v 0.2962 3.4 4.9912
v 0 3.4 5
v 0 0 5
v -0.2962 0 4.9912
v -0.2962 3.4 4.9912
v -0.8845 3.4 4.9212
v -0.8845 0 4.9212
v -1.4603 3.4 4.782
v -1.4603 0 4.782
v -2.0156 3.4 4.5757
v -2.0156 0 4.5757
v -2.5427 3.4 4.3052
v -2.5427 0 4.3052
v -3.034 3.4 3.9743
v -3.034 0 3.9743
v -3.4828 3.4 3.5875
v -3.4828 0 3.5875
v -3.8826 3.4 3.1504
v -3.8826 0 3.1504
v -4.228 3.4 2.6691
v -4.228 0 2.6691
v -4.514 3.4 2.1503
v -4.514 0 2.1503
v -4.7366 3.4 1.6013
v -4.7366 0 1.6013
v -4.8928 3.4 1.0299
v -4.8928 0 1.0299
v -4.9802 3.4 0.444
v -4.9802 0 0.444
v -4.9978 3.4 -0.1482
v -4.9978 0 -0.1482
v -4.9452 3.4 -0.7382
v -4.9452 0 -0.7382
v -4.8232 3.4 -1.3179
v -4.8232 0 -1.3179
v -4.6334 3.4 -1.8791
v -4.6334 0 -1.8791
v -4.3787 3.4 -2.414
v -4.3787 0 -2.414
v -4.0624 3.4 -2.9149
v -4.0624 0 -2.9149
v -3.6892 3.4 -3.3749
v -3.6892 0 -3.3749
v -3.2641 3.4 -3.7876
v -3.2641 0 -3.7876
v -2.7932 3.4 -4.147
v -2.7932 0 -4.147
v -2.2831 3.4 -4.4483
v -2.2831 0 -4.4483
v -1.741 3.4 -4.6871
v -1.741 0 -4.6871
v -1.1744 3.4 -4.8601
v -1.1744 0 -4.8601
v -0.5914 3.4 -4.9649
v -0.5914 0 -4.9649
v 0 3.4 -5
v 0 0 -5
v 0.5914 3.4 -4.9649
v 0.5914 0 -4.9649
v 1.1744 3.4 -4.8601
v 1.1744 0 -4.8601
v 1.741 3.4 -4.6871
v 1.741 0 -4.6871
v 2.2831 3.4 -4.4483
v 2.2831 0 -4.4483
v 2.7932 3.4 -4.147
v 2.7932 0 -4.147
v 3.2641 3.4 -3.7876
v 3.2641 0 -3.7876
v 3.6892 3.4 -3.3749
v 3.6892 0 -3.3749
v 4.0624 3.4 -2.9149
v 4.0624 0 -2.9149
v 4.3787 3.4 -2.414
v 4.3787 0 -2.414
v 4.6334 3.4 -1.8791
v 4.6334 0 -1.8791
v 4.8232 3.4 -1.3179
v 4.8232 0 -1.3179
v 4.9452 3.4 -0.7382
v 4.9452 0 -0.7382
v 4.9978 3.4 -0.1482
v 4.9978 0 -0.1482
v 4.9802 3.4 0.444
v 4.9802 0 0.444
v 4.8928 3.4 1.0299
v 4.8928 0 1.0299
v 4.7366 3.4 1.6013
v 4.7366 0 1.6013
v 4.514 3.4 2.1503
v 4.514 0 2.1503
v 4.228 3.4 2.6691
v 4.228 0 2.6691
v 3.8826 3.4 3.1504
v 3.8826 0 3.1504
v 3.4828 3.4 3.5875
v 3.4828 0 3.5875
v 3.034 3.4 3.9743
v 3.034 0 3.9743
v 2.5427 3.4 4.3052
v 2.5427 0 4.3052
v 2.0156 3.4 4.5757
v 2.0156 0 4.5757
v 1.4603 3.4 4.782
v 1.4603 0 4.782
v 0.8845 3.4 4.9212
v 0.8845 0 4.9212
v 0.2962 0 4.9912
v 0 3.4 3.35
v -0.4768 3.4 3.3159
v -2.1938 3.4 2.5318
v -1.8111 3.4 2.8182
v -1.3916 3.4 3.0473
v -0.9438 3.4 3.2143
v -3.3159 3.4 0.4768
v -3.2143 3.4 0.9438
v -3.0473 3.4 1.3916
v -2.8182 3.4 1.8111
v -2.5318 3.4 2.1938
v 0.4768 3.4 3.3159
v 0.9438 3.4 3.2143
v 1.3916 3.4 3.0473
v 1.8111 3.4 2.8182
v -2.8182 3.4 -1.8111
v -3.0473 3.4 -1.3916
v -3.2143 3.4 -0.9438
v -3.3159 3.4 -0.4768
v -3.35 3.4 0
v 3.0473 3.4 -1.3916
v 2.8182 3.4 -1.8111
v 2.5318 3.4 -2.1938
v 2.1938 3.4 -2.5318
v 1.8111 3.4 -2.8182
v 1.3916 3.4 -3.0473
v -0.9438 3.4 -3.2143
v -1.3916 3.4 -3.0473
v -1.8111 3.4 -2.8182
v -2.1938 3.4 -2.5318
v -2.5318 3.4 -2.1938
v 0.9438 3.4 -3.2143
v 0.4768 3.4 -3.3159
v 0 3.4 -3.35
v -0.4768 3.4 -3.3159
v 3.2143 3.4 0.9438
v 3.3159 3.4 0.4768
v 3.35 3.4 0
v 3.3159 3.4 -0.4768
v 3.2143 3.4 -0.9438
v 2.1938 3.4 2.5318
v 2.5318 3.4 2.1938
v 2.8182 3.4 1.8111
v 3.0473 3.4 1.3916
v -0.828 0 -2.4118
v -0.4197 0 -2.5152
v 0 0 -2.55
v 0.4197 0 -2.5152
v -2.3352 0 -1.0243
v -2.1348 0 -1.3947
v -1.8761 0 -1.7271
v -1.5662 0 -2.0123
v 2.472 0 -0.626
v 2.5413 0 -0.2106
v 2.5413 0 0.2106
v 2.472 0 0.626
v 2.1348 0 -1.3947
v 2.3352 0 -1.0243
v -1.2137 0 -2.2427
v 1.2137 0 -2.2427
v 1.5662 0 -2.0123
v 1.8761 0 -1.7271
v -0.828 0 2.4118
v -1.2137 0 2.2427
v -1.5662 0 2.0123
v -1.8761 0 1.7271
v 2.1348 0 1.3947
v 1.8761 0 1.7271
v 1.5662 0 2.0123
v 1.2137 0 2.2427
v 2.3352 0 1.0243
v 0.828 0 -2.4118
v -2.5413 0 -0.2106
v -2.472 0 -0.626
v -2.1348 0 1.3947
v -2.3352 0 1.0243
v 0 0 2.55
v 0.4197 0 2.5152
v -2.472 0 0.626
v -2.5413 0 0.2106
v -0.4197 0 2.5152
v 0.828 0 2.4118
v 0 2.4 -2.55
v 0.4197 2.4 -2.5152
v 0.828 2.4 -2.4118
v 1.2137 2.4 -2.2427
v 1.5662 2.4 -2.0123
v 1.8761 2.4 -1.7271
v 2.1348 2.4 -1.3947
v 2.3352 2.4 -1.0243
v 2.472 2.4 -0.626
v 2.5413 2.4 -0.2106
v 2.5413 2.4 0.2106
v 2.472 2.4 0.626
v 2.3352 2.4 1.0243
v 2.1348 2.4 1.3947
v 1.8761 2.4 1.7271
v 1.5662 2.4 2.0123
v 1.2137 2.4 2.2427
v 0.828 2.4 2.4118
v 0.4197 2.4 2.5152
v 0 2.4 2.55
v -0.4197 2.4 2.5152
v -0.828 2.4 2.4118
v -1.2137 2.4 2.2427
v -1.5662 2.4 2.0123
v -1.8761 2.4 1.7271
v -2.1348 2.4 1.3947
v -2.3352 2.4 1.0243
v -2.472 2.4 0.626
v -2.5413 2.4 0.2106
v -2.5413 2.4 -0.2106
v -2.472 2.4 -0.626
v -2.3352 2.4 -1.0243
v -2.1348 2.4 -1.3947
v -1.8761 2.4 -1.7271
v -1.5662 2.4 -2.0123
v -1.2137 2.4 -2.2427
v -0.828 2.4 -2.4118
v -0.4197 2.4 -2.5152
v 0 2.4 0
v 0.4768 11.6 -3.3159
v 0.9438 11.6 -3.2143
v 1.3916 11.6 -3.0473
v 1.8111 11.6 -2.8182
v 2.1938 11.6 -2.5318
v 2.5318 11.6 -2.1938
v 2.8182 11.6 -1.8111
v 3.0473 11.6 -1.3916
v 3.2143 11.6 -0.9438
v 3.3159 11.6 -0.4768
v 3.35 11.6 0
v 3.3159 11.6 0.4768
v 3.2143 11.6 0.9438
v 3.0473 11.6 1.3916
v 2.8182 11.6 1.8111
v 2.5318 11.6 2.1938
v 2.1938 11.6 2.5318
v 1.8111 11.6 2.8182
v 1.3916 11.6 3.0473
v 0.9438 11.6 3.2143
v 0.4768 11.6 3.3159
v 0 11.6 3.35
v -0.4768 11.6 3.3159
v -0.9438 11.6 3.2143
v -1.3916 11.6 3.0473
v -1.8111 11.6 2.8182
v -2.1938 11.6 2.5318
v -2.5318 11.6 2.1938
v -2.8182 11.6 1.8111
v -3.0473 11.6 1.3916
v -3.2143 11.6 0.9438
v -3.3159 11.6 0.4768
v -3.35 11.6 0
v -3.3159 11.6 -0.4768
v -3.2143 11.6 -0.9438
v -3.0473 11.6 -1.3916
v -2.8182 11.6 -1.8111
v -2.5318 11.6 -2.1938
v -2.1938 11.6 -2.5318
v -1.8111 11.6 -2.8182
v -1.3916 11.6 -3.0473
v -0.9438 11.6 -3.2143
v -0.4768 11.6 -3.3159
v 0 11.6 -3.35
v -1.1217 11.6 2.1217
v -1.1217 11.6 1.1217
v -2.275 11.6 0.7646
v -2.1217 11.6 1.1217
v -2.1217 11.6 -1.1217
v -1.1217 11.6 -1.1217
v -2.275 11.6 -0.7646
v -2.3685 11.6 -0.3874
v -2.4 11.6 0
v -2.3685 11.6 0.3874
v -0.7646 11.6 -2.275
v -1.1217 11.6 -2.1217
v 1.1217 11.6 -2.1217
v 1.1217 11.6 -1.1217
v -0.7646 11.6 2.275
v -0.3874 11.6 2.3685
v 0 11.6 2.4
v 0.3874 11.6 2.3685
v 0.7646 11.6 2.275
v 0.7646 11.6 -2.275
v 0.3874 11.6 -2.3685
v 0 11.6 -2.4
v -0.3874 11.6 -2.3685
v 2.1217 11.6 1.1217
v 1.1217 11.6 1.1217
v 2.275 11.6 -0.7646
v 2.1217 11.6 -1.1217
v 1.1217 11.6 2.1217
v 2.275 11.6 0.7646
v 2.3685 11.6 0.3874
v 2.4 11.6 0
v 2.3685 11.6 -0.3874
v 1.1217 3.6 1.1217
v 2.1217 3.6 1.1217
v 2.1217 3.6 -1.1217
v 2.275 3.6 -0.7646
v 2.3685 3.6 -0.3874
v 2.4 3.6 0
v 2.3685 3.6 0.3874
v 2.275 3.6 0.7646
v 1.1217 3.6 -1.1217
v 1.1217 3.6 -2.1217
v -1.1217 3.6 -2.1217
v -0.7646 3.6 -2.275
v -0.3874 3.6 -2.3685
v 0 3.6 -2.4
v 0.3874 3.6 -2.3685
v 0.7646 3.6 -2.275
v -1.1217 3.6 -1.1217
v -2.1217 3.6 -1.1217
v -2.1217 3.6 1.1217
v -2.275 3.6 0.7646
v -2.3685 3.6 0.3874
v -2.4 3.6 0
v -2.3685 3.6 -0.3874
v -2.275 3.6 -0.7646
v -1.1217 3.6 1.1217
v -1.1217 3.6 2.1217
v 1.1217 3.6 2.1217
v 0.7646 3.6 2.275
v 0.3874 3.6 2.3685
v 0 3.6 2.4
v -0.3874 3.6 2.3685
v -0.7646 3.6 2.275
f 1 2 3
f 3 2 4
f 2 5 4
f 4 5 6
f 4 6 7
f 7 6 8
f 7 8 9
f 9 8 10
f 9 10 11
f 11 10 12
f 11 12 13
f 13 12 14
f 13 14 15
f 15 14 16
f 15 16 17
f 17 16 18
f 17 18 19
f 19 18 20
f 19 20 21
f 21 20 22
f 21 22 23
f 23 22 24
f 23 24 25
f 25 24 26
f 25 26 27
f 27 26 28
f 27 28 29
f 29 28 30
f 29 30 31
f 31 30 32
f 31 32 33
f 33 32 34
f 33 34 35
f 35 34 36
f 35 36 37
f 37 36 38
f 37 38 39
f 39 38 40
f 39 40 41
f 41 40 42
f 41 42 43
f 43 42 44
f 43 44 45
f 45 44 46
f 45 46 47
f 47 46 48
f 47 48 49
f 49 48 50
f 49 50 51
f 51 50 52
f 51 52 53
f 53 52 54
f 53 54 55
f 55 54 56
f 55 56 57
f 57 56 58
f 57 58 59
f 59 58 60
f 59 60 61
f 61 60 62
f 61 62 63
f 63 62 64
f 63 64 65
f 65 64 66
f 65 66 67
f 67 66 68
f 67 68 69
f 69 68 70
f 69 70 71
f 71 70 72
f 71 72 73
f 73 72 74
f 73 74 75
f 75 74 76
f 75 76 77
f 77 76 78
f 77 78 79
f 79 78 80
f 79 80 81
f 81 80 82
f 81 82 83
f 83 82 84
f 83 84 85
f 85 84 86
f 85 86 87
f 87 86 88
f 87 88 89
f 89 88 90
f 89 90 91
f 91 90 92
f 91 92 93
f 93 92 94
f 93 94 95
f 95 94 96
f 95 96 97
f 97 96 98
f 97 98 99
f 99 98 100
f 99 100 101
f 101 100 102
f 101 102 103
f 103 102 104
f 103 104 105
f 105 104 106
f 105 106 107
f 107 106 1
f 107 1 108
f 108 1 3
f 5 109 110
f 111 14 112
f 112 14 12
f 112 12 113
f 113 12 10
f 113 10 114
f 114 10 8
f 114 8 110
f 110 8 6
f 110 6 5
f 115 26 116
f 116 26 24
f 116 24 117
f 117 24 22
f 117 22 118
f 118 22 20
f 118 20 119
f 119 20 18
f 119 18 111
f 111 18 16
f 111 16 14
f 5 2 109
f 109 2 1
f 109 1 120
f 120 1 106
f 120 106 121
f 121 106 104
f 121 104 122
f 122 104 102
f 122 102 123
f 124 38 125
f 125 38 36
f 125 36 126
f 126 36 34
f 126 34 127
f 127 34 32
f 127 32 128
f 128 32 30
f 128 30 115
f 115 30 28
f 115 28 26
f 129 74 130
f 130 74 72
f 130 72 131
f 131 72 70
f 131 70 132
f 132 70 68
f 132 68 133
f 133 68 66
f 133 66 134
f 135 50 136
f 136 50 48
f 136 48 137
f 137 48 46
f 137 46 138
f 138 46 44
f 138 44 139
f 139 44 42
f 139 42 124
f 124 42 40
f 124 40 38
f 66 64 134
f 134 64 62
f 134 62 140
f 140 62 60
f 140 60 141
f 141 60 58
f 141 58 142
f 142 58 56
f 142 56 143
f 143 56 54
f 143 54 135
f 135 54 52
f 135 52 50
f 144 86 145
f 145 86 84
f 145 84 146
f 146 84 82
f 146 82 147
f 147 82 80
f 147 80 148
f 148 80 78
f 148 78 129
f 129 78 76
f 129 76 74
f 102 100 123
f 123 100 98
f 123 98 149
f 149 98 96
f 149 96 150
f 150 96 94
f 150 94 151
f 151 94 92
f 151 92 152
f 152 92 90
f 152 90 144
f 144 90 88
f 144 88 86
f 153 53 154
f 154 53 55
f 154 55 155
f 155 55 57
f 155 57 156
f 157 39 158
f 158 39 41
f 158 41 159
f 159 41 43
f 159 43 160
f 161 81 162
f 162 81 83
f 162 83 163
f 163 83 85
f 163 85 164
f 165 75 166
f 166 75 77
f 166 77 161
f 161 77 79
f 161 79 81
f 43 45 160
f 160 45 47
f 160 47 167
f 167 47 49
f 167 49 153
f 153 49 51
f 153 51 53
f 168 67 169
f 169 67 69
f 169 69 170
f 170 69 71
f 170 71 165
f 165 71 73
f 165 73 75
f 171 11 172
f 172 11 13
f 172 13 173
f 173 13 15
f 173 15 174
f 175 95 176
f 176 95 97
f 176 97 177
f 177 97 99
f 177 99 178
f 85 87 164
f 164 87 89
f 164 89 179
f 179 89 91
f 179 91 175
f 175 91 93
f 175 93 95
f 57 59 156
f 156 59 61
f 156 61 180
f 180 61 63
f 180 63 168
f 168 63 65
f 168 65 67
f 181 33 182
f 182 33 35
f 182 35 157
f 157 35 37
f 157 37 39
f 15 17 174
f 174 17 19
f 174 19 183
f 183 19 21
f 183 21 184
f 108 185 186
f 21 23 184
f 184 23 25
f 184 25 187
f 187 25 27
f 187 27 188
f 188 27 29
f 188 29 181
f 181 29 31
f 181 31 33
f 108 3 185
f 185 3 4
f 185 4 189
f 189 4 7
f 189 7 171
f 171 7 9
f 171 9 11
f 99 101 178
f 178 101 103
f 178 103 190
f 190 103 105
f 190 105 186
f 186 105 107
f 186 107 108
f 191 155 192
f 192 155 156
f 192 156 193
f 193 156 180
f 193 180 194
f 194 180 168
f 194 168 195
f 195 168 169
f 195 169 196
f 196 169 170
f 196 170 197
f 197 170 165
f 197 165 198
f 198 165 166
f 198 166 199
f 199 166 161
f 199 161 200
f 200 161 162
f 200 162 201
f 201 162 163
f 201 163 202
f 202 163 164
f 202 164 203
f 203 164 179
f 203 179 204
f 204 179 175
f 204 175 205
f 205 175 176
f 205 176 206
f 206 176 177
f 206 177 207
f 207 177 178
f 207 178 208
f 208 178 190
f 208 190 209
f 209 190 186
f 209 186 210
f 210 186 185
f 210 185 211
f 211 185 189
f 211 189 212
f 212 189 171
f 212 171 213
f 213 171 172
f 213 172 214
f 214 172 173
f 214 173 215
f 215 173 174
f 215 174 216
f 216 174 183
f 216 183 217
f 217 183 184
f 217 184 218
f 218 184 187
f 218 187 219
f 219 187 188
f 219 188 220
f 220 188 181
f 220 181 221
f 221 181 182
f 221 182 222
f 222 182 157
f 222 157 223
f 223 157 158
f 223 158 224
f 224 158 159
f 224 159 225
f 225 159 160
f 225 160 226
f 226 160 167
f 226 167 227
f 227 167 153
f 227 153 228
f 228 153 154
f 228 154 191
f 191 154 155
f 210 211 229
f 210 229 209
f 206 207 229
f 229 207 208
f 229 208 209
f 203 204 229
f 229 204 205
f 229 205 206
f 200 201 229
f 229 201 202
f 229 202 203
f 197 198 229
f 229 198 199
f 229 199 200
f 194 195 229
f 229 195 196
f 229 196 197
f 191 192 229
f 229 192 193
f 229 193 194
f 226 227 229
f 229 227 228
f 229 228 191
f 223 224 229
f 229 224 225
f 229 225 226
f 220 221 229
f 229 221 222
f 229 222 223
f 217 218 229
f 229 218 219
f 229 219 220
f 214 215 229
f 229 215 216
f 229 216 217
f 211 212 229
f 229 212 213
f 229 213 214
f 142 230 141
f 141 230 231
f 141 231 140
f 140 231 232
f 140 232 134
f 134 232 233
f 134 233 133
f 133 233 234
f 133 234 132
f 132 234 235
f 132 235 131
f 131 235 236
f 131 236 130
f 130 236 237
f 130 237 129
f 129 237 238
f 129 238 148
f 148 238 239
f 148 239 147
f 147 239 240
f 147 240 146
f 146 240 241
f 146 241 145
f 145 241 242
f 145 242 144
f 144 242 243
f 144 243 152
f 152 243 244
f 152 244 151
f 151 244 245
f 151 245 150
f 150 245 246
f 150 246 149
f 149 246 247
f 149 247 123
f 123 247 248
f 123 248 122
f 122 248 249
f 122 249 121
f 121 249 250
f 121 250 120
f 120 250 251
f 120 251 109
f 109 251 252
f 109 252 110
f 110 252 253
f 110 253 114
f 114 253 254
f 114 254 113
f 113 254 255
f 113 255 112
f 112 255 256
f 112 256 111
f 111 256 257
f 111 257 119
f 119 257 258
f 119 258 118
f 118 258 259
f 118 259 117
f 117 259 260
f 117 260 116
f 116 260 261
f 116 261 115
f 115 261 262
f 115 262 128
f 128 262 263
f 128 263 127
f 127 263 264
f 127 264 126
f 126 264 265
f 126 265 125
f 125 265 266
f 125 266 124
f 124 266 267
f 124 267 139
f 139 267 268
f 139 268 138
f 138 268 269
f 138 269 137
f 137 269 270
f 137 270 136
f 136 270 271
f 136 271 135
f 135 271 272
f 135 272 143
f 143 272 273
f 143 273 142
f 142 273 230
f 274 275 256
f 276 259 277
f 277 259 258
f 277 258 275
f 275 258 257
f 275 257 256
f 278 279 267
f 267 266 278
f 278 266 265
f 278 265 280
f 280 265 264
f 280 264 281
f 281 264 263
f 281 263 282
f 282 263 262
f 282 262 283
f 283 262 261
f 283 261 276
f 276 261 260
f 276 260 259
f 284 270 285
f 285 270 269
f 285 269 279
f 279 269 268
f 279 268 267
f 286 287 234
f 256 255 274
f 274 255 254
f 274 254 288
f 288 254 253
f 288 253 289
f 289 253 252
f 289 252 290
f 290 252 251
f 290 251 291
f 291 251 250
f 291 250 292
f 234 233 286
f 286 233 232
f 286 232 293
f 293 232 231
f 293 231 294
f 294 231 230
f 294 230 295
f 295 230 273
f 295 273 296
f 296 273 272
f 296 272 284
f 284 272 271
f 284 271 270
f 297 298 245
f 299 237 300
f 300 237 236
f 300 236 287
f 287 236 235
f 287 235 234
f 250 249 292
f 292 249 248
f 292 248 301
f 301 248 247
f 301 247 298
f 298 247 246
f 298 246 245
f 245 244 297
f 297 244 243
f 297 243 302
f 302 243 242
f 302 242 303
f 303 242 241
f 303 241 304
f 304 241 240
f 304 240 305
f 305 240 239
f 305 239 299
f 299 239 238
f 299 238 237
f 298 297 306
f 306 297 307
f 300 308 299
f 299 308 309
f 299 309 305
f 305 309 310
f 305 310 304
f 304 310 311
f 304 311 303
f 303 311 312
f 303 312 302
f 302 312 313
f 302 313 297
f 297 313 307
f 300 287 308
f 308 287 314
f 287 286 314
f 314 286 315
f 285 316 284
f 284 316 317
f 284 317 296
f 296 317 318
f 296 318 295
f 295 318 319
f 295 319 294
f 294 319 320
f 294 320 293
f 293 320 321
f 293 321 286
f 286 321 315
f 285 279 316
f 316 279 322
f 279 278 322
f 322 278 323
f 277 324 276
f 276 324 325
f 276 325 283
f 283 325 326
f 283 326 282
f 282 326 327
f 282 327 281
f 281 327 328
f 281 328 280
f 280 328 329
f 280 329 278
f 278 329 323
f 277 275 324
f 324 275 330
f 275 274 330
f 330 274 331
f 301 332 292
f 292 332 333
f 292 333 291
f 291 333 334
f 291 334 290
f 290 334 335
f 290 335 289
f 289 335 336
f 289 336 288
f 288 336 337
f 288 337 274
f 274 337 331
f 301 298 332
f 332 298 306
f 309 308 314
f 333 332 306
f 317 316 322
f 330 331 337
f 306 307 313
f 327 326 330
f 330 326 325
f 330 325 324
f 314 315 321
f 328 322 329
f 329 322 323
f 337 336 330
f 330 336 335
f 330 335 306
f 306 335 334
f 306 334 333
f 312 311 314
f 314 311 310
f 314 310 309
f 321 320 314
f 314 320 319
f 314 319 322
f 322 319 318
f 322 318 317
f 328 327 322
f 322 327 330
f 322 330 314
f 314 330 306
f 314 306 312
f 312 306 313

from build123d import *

# Parameters (mm, degrees)
SKETCH_1_R          = 5
EXTRUDE_1_DEPTH     = 3.4
SKETCH_1_3_R        = 2.55
CUT_EXTRUDE_1_DEPTH = 2.4
SKETCH_2_R          = 3.35
EXTRUDE_2_DEPTH     = 0.2
EXTRUDE_START       = 0.2
SKETCH_2_3_R        = 3.35
SKETCH_2_3_R_2      = 2.4
EXTRUDE_3_DEPTH     = 8


with BuildPart() as part:
    # 草图1 → 凸台-拉伸1 (new body)
    with BuildSketch(Plane(origin=(0, 0, 0), x_dir=(1, 0, 0), z_dir=(0, 1, 0))):
        with Locations(Location((0, 0, 0), (0, 0, 270))):
            Circle(SKETCH_1_R)
    extrude(amount=EXTRUDE_1_DEPTH)

    # 草图1<3> → 切除-拉伸1 (cut)
    with BuildSketch(Plane(origin=(0, 0, 0), x_dir=(1, 0, 0), z_dir=(0, 1, 0))):
        with Locations(Location((0, 0, 0), (0, 0, 270))):
            Circle(SKETCH_1_3_R)
    extrude(amount=CUT_EXTRUDE_1_DEPTH, mode=Mode.SUBTRACT)

    # 草图2 → 凸台-拉伸2 (add)
    with BuildSketch(Plane(origin=(0, 3.4, 0), x_dir=(1, 0, 0), z_dir=(0, 1, 0))):
        with Locations(Location((0, 0, 0), (0, 0, 270))):
            Circle(SKETCH_2_R)
    extrude(amount=EXTRUDE_2_DEPTH)

    # 草图2<3> → 凸台-拉伸3 (add)
    # profile 1 of 5: a face of its own
    with BuildSketch(Plane(origin=(0, 3.4, 0), x_dir=(1, 0, 0), z_dir=(0, 1, 0)).offset(EXTRUDE_START)):
        with Locations(Location((0, 0, 0), (0, 0, 270))):
            Circle(SKETCH_2_3_R)
        Circle(SKETCH_2_3_R_2, mode=Mode.SUBTRACT)
    # profile 2 of 5: a face of its own
    with BuildSketch(Plane(origin=(0, 3.4, 0), x_dir=(1, 0, 0), z_dir=(0, 1, 0)).offset(EXTRUDE_START)):
        with BuildLine():
            Line((-1.121727474, 1.121727474), (-1.121727474, 2.121727474))
            ThreePointArc((-1.121727474, 2.121727474), (-1.697056275, 1.697056275), (-2.121727474, 1.121727474))
            Line((-2.121727474, 1.121727474), (-1.121727474, 1.121727474))
        make_face()
    # profile 3 of 5: a face of its own
    with BuildSketch(Plane(origin=(0, 3.4, 0), x_dir=(1, 0, 0), z_dir=(0, 1, 0)).offset(EXTRUDE_START)):
        with BuildLine():
            ThreePointArc((2.121727474, 1.121727474), (1.697056275, 1.697056275), (1.121727474, 2.121727474))
            Line((1.121727474, 2.121727474), (1.121727474, 1.121727474))
            Line((1.121727474, 1.121727474), (2.121727474, 1.121727474))
        make_face()
    # profile 4 of 5: a face of its own
    with BuildSketch(Plane(origin=(0, 3.4, 0), x_dir=(1, 0, 0), z_dir=(0, 1, 0)).offset(EXTRUDE_START)):
        with BuildLine():
            Line((-1.121727474, -2.121727474), (-1.121727474, -1.121727474))
            Line((-1.121727474, -1.121727474), (-2.121727474, -1.121727474))
            ThreePointArc((-2.121727474, -1.121727474), (-1.697056275, -1.697056275), (-1.121727474, -2.121727474))
        make_face()
    # profile 5 of 5: a face of its own
    with BuildSketch(Plane(origin=(0, 3.4, 0), x_dir=(1, 0, 0), z_dir=(0, 1, 0)).offset(EXTRUDE_START)):
        with BuildLine():
            Line((2.121727474, -1.121727474), (1.121727474, -1.121727474))
            Line((1.121727474, -1.121727474), (1.121727474, -2.121727474))
            ThreePointArc((1.121727474, -2.121727474), (1.697056275, -1.697056275), (2.121727474, -1.121727474))
        make_face()
    extrude(amount=EXTRUDE_3_DEPTH)


solid = part.part
